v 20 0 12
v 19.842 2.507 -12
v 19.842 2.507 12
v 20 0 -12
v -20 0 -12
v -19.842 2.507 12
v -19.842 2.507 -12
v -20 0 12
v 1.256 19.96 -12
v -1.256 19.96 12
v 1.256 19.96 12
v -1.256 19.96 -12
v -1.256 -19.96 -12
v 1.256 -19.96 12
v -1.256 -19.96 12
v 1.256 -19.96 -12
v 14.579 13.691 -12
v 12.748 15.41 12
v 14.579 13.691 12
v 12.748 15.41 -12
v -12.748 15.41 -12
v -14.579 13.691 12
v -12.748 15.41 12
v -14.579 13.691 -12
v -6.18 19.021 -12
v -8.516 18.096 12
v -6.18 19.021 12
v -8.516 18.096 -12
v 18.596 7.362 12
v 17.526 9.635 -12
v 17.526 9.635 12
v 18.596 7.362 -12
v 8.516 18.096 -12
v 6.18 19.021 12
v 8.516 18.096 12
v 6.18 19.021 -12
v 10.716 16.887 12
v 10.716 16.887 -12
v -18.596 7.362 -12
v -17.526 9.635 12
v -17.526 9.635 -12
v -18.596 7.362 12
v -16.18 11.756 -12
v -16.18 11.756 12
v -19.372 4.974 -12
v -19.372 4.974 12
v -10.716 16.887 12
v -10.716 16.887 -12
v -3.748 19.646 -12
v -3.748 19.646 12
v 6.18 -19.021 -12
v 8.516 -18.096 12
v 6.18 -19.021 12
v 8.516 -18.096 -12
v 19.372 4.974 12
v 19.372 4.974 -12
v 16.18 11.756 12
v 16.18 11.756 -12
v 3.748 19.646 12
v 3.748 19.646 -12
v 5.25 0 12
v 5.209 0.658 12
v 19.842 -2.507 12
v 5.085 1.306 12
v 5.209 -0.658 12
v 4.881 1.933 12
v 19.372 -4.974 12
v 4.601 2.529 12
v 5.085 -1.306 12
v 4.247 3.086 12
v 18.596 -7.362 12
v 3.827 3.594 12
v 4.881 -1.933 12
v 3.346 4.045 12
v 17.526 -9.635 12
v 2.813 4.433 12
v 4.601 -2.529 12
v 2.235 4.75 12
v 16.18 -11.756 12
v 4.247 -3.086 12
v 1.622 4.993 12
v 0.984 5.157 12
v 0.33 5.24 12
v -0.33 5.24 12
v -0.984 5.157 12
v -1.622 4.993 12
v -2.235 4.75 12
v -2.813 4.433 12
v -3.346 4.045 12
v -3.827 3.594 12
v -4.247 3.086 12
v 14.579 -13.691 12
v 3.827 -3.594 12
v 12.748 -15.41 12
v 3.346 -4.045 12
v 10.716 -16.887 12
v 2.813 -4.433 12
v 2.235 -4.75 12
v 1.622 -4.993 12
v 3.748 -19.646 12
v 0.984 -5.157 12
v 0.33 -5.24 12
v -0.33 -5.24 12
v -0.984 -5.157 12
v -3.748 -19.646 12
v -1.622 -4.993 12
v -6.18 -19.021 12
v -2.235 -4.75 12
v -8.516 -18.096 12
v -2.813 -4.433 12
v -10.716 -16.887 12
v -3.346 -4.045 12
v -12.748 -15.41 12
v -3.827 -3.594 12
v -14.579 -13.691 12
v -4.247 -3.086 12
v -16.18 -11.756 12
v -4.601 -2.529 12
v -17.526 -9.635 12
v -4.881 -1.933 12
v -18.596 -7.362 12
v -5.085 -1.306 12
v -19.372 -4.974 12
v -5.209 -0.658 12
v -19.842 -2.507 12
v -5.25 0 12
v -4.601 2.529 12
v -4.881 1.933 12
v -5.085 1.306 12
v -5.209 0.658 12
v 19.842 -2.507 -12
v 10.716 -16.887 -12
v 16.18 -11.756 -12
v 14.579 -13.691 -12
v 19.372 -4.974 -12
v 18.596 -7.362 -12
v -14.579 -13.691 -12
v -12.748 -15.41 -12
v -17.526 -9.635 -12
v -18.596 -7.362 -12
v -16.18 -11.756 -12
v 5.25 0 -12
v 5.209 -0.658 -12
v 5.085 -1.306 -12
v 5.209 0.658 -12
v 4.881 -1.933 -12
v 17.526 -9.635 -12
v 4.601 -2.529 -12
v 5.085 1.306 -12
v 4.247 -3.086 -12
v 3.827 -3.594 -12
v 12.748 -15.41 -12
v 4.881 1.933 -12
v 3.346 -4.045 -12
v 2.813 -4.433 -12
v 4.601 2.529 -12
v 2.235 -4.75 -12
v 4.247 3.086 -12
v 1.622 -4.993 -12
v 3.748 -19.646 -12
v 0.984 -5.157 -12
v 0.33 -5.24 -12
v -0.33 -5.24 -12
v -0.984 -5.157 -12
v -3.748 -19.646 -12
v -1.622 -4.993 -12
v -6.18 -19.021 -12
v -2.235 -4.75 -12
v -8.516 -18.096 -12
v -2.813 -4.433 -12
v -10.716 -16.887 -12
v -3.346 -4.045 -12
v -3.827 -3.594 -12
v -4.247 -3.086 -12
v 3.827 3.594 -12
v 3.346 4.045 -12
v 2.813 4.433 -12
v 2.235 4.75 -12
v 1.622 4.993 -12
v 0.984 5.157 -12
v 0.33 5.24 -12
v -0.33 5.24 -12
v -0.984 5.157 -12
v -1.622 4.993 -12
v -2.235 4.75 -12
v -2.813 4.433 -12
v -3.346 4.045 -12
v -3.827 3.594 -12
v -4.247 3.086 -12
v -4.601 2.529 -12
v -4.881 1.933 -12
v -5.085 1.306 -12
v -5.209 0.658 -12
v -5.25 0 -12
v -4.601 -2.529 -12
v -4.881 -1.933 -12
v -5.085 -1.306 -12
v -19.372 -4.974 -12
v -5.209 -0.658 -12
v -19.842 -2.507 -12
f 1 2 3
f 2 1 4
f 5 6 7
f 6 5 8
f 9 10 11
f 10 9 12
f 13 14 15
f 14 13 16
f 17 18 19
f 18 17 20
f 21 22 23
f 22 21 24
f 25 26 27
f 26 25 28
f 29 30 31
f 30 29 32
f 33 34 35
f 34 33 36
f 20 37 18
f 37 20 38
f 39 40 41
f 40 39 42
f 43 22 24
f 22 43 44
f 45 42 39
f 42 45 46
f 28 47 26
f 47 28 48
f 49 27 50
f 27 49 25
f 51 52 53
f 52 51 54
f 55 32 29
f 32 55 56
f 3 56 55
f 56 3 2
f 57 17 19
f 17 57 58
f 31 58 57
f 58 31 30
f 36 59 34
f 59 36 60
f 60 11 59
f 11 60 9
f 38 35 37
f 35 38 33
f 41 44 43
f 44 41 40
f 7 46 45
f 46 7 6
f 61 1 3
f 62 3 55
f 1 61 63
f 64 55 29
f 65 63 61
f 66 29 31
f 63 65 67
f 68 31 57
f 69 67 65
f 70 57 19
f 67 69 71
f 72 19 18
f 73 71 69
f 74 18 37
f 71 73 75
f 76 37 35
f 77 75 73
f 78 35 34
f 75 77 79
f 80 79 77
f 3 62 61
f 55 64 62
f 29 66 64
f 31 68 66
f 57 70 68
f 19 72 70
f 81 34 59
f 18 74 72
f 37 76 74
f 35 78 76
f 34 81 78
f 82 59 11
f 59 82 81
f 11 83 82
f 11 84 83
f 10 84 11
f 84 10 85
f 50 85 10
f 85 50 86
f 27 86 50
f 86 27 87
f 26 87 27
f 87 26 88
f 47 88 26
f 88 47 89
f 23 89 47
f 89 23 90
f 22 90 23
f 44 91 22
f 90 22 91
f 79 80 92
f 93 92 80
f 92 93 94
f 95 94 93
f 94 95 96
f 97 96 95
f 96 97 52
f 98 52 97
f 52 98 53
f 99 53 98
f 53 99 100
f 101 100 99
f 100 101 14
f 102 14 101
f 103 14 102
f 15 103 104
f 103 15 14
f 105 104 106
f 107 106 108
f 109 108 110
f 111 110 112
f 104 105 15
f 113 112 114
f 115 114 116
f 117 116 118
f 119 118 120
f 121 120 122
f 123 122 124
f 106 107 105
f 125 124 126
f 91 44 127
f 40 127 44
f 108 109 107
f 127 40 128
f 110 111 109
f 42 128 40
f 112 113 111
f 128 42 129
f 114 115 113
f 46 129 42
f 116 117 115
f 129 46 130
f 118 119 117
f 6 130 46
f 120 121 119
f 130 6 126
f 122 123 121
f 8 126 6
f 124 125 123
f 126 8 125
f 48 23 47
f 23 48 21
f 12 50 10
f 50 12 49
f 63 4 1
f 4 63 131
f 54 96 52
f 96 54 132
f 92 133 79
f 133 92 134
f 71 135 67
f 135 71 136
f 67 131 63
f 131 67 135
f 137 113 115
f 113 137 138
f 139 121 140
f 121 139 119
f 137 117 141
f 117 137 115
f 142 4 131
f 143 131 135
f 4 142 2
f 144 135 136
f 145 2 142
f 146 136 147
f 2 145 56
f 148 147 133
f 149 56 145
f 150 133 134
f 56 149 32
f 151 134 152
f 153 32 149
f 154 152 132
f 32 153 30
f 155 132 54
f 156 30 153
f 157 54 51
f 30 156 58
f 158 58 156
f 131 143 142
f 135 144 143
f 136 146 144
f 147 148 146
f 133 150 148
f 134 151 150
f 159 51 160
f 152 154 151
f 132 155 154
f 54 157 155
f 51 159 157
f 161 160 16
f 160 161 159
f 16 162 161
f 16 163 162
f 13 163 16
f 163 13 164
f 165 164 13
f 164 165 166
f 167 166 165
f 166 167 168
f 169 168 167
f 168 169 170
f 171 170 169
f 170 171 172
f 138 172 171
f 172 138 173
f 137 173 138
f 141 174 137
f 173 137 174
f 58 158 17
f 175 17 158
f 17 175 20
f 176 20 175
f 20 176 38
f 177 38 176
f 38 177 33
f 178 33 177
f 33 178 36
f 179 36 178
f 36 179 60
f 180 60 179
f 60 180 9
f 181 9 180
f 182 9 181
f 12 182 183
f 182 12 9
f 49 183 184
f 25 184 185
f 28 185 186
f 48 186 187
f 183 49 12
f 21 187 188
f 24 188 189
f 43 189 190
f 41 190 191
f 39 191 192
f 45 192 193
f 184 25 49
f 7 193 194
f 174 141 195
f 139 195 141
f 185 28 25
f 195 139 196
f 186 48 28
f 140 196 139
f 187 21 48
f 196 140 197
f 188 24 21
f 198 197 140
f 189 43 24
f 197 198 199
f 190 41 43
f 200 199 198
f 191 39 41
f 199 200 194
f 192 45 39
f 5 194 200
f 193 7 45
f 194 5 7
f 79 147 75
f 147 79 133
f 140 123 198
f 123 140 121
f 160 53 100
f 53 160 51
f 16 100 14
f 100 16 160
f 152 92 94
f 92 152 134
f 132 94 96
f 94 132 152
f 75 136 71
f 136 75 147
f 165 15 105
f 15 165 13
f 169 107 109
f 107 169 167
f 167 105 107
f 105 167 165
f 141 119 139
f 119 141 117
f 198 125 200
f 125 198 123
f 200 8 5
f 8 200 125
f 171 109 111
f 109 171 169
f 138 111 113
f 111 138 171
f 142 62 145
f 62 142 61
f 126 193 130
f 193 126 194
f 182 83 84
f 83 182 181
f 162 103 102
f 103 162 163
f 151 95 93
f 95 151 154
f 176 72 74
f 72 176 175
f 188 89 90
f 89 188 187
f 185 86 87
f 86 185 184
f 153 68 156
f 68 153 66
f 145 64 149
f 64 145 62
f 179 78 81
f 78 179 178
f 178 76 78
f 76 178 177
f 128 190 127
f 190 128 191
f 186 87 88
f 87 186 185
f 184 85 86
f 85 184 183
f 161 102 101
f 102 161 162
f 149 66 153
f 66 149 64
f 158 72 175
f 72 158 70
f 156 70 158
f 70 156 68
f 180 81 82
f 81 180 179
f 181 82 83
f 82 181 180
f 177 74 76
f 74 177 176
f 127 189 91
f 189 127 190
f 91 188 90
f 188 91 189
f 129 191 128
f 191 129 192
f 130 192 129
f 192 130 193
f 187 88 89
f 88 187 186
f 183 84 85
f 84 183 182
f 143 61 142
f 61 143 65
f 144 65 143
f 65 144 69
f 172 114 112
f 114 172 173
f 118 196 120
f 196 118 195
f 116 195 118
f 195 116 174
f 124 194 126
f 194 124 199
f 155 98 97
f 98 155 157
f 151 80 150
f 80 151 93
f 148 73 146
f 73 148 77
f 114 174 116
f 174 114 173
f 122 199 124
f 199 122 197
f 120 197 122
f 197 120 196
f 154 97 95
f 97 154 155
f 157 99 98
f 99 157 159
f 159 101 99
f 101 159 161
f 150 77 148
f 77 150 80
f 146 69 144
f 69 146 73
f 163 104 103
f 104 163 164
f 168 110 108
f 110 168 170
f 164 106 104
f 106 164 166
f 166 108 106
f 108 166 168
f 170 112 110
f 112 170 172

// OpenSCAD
$fn = 50;


difference() {
	union() {
		translate(v = [0, 0, -12.0000000000]) {
			cylinder(h = 24, r = 20.0000000000);
		}
	}
	union() {
		translate(v = [0, 0, -100.0000000000]) {
			cylinder(h = 200, r = 5.2500000000);
		}
	}
}
